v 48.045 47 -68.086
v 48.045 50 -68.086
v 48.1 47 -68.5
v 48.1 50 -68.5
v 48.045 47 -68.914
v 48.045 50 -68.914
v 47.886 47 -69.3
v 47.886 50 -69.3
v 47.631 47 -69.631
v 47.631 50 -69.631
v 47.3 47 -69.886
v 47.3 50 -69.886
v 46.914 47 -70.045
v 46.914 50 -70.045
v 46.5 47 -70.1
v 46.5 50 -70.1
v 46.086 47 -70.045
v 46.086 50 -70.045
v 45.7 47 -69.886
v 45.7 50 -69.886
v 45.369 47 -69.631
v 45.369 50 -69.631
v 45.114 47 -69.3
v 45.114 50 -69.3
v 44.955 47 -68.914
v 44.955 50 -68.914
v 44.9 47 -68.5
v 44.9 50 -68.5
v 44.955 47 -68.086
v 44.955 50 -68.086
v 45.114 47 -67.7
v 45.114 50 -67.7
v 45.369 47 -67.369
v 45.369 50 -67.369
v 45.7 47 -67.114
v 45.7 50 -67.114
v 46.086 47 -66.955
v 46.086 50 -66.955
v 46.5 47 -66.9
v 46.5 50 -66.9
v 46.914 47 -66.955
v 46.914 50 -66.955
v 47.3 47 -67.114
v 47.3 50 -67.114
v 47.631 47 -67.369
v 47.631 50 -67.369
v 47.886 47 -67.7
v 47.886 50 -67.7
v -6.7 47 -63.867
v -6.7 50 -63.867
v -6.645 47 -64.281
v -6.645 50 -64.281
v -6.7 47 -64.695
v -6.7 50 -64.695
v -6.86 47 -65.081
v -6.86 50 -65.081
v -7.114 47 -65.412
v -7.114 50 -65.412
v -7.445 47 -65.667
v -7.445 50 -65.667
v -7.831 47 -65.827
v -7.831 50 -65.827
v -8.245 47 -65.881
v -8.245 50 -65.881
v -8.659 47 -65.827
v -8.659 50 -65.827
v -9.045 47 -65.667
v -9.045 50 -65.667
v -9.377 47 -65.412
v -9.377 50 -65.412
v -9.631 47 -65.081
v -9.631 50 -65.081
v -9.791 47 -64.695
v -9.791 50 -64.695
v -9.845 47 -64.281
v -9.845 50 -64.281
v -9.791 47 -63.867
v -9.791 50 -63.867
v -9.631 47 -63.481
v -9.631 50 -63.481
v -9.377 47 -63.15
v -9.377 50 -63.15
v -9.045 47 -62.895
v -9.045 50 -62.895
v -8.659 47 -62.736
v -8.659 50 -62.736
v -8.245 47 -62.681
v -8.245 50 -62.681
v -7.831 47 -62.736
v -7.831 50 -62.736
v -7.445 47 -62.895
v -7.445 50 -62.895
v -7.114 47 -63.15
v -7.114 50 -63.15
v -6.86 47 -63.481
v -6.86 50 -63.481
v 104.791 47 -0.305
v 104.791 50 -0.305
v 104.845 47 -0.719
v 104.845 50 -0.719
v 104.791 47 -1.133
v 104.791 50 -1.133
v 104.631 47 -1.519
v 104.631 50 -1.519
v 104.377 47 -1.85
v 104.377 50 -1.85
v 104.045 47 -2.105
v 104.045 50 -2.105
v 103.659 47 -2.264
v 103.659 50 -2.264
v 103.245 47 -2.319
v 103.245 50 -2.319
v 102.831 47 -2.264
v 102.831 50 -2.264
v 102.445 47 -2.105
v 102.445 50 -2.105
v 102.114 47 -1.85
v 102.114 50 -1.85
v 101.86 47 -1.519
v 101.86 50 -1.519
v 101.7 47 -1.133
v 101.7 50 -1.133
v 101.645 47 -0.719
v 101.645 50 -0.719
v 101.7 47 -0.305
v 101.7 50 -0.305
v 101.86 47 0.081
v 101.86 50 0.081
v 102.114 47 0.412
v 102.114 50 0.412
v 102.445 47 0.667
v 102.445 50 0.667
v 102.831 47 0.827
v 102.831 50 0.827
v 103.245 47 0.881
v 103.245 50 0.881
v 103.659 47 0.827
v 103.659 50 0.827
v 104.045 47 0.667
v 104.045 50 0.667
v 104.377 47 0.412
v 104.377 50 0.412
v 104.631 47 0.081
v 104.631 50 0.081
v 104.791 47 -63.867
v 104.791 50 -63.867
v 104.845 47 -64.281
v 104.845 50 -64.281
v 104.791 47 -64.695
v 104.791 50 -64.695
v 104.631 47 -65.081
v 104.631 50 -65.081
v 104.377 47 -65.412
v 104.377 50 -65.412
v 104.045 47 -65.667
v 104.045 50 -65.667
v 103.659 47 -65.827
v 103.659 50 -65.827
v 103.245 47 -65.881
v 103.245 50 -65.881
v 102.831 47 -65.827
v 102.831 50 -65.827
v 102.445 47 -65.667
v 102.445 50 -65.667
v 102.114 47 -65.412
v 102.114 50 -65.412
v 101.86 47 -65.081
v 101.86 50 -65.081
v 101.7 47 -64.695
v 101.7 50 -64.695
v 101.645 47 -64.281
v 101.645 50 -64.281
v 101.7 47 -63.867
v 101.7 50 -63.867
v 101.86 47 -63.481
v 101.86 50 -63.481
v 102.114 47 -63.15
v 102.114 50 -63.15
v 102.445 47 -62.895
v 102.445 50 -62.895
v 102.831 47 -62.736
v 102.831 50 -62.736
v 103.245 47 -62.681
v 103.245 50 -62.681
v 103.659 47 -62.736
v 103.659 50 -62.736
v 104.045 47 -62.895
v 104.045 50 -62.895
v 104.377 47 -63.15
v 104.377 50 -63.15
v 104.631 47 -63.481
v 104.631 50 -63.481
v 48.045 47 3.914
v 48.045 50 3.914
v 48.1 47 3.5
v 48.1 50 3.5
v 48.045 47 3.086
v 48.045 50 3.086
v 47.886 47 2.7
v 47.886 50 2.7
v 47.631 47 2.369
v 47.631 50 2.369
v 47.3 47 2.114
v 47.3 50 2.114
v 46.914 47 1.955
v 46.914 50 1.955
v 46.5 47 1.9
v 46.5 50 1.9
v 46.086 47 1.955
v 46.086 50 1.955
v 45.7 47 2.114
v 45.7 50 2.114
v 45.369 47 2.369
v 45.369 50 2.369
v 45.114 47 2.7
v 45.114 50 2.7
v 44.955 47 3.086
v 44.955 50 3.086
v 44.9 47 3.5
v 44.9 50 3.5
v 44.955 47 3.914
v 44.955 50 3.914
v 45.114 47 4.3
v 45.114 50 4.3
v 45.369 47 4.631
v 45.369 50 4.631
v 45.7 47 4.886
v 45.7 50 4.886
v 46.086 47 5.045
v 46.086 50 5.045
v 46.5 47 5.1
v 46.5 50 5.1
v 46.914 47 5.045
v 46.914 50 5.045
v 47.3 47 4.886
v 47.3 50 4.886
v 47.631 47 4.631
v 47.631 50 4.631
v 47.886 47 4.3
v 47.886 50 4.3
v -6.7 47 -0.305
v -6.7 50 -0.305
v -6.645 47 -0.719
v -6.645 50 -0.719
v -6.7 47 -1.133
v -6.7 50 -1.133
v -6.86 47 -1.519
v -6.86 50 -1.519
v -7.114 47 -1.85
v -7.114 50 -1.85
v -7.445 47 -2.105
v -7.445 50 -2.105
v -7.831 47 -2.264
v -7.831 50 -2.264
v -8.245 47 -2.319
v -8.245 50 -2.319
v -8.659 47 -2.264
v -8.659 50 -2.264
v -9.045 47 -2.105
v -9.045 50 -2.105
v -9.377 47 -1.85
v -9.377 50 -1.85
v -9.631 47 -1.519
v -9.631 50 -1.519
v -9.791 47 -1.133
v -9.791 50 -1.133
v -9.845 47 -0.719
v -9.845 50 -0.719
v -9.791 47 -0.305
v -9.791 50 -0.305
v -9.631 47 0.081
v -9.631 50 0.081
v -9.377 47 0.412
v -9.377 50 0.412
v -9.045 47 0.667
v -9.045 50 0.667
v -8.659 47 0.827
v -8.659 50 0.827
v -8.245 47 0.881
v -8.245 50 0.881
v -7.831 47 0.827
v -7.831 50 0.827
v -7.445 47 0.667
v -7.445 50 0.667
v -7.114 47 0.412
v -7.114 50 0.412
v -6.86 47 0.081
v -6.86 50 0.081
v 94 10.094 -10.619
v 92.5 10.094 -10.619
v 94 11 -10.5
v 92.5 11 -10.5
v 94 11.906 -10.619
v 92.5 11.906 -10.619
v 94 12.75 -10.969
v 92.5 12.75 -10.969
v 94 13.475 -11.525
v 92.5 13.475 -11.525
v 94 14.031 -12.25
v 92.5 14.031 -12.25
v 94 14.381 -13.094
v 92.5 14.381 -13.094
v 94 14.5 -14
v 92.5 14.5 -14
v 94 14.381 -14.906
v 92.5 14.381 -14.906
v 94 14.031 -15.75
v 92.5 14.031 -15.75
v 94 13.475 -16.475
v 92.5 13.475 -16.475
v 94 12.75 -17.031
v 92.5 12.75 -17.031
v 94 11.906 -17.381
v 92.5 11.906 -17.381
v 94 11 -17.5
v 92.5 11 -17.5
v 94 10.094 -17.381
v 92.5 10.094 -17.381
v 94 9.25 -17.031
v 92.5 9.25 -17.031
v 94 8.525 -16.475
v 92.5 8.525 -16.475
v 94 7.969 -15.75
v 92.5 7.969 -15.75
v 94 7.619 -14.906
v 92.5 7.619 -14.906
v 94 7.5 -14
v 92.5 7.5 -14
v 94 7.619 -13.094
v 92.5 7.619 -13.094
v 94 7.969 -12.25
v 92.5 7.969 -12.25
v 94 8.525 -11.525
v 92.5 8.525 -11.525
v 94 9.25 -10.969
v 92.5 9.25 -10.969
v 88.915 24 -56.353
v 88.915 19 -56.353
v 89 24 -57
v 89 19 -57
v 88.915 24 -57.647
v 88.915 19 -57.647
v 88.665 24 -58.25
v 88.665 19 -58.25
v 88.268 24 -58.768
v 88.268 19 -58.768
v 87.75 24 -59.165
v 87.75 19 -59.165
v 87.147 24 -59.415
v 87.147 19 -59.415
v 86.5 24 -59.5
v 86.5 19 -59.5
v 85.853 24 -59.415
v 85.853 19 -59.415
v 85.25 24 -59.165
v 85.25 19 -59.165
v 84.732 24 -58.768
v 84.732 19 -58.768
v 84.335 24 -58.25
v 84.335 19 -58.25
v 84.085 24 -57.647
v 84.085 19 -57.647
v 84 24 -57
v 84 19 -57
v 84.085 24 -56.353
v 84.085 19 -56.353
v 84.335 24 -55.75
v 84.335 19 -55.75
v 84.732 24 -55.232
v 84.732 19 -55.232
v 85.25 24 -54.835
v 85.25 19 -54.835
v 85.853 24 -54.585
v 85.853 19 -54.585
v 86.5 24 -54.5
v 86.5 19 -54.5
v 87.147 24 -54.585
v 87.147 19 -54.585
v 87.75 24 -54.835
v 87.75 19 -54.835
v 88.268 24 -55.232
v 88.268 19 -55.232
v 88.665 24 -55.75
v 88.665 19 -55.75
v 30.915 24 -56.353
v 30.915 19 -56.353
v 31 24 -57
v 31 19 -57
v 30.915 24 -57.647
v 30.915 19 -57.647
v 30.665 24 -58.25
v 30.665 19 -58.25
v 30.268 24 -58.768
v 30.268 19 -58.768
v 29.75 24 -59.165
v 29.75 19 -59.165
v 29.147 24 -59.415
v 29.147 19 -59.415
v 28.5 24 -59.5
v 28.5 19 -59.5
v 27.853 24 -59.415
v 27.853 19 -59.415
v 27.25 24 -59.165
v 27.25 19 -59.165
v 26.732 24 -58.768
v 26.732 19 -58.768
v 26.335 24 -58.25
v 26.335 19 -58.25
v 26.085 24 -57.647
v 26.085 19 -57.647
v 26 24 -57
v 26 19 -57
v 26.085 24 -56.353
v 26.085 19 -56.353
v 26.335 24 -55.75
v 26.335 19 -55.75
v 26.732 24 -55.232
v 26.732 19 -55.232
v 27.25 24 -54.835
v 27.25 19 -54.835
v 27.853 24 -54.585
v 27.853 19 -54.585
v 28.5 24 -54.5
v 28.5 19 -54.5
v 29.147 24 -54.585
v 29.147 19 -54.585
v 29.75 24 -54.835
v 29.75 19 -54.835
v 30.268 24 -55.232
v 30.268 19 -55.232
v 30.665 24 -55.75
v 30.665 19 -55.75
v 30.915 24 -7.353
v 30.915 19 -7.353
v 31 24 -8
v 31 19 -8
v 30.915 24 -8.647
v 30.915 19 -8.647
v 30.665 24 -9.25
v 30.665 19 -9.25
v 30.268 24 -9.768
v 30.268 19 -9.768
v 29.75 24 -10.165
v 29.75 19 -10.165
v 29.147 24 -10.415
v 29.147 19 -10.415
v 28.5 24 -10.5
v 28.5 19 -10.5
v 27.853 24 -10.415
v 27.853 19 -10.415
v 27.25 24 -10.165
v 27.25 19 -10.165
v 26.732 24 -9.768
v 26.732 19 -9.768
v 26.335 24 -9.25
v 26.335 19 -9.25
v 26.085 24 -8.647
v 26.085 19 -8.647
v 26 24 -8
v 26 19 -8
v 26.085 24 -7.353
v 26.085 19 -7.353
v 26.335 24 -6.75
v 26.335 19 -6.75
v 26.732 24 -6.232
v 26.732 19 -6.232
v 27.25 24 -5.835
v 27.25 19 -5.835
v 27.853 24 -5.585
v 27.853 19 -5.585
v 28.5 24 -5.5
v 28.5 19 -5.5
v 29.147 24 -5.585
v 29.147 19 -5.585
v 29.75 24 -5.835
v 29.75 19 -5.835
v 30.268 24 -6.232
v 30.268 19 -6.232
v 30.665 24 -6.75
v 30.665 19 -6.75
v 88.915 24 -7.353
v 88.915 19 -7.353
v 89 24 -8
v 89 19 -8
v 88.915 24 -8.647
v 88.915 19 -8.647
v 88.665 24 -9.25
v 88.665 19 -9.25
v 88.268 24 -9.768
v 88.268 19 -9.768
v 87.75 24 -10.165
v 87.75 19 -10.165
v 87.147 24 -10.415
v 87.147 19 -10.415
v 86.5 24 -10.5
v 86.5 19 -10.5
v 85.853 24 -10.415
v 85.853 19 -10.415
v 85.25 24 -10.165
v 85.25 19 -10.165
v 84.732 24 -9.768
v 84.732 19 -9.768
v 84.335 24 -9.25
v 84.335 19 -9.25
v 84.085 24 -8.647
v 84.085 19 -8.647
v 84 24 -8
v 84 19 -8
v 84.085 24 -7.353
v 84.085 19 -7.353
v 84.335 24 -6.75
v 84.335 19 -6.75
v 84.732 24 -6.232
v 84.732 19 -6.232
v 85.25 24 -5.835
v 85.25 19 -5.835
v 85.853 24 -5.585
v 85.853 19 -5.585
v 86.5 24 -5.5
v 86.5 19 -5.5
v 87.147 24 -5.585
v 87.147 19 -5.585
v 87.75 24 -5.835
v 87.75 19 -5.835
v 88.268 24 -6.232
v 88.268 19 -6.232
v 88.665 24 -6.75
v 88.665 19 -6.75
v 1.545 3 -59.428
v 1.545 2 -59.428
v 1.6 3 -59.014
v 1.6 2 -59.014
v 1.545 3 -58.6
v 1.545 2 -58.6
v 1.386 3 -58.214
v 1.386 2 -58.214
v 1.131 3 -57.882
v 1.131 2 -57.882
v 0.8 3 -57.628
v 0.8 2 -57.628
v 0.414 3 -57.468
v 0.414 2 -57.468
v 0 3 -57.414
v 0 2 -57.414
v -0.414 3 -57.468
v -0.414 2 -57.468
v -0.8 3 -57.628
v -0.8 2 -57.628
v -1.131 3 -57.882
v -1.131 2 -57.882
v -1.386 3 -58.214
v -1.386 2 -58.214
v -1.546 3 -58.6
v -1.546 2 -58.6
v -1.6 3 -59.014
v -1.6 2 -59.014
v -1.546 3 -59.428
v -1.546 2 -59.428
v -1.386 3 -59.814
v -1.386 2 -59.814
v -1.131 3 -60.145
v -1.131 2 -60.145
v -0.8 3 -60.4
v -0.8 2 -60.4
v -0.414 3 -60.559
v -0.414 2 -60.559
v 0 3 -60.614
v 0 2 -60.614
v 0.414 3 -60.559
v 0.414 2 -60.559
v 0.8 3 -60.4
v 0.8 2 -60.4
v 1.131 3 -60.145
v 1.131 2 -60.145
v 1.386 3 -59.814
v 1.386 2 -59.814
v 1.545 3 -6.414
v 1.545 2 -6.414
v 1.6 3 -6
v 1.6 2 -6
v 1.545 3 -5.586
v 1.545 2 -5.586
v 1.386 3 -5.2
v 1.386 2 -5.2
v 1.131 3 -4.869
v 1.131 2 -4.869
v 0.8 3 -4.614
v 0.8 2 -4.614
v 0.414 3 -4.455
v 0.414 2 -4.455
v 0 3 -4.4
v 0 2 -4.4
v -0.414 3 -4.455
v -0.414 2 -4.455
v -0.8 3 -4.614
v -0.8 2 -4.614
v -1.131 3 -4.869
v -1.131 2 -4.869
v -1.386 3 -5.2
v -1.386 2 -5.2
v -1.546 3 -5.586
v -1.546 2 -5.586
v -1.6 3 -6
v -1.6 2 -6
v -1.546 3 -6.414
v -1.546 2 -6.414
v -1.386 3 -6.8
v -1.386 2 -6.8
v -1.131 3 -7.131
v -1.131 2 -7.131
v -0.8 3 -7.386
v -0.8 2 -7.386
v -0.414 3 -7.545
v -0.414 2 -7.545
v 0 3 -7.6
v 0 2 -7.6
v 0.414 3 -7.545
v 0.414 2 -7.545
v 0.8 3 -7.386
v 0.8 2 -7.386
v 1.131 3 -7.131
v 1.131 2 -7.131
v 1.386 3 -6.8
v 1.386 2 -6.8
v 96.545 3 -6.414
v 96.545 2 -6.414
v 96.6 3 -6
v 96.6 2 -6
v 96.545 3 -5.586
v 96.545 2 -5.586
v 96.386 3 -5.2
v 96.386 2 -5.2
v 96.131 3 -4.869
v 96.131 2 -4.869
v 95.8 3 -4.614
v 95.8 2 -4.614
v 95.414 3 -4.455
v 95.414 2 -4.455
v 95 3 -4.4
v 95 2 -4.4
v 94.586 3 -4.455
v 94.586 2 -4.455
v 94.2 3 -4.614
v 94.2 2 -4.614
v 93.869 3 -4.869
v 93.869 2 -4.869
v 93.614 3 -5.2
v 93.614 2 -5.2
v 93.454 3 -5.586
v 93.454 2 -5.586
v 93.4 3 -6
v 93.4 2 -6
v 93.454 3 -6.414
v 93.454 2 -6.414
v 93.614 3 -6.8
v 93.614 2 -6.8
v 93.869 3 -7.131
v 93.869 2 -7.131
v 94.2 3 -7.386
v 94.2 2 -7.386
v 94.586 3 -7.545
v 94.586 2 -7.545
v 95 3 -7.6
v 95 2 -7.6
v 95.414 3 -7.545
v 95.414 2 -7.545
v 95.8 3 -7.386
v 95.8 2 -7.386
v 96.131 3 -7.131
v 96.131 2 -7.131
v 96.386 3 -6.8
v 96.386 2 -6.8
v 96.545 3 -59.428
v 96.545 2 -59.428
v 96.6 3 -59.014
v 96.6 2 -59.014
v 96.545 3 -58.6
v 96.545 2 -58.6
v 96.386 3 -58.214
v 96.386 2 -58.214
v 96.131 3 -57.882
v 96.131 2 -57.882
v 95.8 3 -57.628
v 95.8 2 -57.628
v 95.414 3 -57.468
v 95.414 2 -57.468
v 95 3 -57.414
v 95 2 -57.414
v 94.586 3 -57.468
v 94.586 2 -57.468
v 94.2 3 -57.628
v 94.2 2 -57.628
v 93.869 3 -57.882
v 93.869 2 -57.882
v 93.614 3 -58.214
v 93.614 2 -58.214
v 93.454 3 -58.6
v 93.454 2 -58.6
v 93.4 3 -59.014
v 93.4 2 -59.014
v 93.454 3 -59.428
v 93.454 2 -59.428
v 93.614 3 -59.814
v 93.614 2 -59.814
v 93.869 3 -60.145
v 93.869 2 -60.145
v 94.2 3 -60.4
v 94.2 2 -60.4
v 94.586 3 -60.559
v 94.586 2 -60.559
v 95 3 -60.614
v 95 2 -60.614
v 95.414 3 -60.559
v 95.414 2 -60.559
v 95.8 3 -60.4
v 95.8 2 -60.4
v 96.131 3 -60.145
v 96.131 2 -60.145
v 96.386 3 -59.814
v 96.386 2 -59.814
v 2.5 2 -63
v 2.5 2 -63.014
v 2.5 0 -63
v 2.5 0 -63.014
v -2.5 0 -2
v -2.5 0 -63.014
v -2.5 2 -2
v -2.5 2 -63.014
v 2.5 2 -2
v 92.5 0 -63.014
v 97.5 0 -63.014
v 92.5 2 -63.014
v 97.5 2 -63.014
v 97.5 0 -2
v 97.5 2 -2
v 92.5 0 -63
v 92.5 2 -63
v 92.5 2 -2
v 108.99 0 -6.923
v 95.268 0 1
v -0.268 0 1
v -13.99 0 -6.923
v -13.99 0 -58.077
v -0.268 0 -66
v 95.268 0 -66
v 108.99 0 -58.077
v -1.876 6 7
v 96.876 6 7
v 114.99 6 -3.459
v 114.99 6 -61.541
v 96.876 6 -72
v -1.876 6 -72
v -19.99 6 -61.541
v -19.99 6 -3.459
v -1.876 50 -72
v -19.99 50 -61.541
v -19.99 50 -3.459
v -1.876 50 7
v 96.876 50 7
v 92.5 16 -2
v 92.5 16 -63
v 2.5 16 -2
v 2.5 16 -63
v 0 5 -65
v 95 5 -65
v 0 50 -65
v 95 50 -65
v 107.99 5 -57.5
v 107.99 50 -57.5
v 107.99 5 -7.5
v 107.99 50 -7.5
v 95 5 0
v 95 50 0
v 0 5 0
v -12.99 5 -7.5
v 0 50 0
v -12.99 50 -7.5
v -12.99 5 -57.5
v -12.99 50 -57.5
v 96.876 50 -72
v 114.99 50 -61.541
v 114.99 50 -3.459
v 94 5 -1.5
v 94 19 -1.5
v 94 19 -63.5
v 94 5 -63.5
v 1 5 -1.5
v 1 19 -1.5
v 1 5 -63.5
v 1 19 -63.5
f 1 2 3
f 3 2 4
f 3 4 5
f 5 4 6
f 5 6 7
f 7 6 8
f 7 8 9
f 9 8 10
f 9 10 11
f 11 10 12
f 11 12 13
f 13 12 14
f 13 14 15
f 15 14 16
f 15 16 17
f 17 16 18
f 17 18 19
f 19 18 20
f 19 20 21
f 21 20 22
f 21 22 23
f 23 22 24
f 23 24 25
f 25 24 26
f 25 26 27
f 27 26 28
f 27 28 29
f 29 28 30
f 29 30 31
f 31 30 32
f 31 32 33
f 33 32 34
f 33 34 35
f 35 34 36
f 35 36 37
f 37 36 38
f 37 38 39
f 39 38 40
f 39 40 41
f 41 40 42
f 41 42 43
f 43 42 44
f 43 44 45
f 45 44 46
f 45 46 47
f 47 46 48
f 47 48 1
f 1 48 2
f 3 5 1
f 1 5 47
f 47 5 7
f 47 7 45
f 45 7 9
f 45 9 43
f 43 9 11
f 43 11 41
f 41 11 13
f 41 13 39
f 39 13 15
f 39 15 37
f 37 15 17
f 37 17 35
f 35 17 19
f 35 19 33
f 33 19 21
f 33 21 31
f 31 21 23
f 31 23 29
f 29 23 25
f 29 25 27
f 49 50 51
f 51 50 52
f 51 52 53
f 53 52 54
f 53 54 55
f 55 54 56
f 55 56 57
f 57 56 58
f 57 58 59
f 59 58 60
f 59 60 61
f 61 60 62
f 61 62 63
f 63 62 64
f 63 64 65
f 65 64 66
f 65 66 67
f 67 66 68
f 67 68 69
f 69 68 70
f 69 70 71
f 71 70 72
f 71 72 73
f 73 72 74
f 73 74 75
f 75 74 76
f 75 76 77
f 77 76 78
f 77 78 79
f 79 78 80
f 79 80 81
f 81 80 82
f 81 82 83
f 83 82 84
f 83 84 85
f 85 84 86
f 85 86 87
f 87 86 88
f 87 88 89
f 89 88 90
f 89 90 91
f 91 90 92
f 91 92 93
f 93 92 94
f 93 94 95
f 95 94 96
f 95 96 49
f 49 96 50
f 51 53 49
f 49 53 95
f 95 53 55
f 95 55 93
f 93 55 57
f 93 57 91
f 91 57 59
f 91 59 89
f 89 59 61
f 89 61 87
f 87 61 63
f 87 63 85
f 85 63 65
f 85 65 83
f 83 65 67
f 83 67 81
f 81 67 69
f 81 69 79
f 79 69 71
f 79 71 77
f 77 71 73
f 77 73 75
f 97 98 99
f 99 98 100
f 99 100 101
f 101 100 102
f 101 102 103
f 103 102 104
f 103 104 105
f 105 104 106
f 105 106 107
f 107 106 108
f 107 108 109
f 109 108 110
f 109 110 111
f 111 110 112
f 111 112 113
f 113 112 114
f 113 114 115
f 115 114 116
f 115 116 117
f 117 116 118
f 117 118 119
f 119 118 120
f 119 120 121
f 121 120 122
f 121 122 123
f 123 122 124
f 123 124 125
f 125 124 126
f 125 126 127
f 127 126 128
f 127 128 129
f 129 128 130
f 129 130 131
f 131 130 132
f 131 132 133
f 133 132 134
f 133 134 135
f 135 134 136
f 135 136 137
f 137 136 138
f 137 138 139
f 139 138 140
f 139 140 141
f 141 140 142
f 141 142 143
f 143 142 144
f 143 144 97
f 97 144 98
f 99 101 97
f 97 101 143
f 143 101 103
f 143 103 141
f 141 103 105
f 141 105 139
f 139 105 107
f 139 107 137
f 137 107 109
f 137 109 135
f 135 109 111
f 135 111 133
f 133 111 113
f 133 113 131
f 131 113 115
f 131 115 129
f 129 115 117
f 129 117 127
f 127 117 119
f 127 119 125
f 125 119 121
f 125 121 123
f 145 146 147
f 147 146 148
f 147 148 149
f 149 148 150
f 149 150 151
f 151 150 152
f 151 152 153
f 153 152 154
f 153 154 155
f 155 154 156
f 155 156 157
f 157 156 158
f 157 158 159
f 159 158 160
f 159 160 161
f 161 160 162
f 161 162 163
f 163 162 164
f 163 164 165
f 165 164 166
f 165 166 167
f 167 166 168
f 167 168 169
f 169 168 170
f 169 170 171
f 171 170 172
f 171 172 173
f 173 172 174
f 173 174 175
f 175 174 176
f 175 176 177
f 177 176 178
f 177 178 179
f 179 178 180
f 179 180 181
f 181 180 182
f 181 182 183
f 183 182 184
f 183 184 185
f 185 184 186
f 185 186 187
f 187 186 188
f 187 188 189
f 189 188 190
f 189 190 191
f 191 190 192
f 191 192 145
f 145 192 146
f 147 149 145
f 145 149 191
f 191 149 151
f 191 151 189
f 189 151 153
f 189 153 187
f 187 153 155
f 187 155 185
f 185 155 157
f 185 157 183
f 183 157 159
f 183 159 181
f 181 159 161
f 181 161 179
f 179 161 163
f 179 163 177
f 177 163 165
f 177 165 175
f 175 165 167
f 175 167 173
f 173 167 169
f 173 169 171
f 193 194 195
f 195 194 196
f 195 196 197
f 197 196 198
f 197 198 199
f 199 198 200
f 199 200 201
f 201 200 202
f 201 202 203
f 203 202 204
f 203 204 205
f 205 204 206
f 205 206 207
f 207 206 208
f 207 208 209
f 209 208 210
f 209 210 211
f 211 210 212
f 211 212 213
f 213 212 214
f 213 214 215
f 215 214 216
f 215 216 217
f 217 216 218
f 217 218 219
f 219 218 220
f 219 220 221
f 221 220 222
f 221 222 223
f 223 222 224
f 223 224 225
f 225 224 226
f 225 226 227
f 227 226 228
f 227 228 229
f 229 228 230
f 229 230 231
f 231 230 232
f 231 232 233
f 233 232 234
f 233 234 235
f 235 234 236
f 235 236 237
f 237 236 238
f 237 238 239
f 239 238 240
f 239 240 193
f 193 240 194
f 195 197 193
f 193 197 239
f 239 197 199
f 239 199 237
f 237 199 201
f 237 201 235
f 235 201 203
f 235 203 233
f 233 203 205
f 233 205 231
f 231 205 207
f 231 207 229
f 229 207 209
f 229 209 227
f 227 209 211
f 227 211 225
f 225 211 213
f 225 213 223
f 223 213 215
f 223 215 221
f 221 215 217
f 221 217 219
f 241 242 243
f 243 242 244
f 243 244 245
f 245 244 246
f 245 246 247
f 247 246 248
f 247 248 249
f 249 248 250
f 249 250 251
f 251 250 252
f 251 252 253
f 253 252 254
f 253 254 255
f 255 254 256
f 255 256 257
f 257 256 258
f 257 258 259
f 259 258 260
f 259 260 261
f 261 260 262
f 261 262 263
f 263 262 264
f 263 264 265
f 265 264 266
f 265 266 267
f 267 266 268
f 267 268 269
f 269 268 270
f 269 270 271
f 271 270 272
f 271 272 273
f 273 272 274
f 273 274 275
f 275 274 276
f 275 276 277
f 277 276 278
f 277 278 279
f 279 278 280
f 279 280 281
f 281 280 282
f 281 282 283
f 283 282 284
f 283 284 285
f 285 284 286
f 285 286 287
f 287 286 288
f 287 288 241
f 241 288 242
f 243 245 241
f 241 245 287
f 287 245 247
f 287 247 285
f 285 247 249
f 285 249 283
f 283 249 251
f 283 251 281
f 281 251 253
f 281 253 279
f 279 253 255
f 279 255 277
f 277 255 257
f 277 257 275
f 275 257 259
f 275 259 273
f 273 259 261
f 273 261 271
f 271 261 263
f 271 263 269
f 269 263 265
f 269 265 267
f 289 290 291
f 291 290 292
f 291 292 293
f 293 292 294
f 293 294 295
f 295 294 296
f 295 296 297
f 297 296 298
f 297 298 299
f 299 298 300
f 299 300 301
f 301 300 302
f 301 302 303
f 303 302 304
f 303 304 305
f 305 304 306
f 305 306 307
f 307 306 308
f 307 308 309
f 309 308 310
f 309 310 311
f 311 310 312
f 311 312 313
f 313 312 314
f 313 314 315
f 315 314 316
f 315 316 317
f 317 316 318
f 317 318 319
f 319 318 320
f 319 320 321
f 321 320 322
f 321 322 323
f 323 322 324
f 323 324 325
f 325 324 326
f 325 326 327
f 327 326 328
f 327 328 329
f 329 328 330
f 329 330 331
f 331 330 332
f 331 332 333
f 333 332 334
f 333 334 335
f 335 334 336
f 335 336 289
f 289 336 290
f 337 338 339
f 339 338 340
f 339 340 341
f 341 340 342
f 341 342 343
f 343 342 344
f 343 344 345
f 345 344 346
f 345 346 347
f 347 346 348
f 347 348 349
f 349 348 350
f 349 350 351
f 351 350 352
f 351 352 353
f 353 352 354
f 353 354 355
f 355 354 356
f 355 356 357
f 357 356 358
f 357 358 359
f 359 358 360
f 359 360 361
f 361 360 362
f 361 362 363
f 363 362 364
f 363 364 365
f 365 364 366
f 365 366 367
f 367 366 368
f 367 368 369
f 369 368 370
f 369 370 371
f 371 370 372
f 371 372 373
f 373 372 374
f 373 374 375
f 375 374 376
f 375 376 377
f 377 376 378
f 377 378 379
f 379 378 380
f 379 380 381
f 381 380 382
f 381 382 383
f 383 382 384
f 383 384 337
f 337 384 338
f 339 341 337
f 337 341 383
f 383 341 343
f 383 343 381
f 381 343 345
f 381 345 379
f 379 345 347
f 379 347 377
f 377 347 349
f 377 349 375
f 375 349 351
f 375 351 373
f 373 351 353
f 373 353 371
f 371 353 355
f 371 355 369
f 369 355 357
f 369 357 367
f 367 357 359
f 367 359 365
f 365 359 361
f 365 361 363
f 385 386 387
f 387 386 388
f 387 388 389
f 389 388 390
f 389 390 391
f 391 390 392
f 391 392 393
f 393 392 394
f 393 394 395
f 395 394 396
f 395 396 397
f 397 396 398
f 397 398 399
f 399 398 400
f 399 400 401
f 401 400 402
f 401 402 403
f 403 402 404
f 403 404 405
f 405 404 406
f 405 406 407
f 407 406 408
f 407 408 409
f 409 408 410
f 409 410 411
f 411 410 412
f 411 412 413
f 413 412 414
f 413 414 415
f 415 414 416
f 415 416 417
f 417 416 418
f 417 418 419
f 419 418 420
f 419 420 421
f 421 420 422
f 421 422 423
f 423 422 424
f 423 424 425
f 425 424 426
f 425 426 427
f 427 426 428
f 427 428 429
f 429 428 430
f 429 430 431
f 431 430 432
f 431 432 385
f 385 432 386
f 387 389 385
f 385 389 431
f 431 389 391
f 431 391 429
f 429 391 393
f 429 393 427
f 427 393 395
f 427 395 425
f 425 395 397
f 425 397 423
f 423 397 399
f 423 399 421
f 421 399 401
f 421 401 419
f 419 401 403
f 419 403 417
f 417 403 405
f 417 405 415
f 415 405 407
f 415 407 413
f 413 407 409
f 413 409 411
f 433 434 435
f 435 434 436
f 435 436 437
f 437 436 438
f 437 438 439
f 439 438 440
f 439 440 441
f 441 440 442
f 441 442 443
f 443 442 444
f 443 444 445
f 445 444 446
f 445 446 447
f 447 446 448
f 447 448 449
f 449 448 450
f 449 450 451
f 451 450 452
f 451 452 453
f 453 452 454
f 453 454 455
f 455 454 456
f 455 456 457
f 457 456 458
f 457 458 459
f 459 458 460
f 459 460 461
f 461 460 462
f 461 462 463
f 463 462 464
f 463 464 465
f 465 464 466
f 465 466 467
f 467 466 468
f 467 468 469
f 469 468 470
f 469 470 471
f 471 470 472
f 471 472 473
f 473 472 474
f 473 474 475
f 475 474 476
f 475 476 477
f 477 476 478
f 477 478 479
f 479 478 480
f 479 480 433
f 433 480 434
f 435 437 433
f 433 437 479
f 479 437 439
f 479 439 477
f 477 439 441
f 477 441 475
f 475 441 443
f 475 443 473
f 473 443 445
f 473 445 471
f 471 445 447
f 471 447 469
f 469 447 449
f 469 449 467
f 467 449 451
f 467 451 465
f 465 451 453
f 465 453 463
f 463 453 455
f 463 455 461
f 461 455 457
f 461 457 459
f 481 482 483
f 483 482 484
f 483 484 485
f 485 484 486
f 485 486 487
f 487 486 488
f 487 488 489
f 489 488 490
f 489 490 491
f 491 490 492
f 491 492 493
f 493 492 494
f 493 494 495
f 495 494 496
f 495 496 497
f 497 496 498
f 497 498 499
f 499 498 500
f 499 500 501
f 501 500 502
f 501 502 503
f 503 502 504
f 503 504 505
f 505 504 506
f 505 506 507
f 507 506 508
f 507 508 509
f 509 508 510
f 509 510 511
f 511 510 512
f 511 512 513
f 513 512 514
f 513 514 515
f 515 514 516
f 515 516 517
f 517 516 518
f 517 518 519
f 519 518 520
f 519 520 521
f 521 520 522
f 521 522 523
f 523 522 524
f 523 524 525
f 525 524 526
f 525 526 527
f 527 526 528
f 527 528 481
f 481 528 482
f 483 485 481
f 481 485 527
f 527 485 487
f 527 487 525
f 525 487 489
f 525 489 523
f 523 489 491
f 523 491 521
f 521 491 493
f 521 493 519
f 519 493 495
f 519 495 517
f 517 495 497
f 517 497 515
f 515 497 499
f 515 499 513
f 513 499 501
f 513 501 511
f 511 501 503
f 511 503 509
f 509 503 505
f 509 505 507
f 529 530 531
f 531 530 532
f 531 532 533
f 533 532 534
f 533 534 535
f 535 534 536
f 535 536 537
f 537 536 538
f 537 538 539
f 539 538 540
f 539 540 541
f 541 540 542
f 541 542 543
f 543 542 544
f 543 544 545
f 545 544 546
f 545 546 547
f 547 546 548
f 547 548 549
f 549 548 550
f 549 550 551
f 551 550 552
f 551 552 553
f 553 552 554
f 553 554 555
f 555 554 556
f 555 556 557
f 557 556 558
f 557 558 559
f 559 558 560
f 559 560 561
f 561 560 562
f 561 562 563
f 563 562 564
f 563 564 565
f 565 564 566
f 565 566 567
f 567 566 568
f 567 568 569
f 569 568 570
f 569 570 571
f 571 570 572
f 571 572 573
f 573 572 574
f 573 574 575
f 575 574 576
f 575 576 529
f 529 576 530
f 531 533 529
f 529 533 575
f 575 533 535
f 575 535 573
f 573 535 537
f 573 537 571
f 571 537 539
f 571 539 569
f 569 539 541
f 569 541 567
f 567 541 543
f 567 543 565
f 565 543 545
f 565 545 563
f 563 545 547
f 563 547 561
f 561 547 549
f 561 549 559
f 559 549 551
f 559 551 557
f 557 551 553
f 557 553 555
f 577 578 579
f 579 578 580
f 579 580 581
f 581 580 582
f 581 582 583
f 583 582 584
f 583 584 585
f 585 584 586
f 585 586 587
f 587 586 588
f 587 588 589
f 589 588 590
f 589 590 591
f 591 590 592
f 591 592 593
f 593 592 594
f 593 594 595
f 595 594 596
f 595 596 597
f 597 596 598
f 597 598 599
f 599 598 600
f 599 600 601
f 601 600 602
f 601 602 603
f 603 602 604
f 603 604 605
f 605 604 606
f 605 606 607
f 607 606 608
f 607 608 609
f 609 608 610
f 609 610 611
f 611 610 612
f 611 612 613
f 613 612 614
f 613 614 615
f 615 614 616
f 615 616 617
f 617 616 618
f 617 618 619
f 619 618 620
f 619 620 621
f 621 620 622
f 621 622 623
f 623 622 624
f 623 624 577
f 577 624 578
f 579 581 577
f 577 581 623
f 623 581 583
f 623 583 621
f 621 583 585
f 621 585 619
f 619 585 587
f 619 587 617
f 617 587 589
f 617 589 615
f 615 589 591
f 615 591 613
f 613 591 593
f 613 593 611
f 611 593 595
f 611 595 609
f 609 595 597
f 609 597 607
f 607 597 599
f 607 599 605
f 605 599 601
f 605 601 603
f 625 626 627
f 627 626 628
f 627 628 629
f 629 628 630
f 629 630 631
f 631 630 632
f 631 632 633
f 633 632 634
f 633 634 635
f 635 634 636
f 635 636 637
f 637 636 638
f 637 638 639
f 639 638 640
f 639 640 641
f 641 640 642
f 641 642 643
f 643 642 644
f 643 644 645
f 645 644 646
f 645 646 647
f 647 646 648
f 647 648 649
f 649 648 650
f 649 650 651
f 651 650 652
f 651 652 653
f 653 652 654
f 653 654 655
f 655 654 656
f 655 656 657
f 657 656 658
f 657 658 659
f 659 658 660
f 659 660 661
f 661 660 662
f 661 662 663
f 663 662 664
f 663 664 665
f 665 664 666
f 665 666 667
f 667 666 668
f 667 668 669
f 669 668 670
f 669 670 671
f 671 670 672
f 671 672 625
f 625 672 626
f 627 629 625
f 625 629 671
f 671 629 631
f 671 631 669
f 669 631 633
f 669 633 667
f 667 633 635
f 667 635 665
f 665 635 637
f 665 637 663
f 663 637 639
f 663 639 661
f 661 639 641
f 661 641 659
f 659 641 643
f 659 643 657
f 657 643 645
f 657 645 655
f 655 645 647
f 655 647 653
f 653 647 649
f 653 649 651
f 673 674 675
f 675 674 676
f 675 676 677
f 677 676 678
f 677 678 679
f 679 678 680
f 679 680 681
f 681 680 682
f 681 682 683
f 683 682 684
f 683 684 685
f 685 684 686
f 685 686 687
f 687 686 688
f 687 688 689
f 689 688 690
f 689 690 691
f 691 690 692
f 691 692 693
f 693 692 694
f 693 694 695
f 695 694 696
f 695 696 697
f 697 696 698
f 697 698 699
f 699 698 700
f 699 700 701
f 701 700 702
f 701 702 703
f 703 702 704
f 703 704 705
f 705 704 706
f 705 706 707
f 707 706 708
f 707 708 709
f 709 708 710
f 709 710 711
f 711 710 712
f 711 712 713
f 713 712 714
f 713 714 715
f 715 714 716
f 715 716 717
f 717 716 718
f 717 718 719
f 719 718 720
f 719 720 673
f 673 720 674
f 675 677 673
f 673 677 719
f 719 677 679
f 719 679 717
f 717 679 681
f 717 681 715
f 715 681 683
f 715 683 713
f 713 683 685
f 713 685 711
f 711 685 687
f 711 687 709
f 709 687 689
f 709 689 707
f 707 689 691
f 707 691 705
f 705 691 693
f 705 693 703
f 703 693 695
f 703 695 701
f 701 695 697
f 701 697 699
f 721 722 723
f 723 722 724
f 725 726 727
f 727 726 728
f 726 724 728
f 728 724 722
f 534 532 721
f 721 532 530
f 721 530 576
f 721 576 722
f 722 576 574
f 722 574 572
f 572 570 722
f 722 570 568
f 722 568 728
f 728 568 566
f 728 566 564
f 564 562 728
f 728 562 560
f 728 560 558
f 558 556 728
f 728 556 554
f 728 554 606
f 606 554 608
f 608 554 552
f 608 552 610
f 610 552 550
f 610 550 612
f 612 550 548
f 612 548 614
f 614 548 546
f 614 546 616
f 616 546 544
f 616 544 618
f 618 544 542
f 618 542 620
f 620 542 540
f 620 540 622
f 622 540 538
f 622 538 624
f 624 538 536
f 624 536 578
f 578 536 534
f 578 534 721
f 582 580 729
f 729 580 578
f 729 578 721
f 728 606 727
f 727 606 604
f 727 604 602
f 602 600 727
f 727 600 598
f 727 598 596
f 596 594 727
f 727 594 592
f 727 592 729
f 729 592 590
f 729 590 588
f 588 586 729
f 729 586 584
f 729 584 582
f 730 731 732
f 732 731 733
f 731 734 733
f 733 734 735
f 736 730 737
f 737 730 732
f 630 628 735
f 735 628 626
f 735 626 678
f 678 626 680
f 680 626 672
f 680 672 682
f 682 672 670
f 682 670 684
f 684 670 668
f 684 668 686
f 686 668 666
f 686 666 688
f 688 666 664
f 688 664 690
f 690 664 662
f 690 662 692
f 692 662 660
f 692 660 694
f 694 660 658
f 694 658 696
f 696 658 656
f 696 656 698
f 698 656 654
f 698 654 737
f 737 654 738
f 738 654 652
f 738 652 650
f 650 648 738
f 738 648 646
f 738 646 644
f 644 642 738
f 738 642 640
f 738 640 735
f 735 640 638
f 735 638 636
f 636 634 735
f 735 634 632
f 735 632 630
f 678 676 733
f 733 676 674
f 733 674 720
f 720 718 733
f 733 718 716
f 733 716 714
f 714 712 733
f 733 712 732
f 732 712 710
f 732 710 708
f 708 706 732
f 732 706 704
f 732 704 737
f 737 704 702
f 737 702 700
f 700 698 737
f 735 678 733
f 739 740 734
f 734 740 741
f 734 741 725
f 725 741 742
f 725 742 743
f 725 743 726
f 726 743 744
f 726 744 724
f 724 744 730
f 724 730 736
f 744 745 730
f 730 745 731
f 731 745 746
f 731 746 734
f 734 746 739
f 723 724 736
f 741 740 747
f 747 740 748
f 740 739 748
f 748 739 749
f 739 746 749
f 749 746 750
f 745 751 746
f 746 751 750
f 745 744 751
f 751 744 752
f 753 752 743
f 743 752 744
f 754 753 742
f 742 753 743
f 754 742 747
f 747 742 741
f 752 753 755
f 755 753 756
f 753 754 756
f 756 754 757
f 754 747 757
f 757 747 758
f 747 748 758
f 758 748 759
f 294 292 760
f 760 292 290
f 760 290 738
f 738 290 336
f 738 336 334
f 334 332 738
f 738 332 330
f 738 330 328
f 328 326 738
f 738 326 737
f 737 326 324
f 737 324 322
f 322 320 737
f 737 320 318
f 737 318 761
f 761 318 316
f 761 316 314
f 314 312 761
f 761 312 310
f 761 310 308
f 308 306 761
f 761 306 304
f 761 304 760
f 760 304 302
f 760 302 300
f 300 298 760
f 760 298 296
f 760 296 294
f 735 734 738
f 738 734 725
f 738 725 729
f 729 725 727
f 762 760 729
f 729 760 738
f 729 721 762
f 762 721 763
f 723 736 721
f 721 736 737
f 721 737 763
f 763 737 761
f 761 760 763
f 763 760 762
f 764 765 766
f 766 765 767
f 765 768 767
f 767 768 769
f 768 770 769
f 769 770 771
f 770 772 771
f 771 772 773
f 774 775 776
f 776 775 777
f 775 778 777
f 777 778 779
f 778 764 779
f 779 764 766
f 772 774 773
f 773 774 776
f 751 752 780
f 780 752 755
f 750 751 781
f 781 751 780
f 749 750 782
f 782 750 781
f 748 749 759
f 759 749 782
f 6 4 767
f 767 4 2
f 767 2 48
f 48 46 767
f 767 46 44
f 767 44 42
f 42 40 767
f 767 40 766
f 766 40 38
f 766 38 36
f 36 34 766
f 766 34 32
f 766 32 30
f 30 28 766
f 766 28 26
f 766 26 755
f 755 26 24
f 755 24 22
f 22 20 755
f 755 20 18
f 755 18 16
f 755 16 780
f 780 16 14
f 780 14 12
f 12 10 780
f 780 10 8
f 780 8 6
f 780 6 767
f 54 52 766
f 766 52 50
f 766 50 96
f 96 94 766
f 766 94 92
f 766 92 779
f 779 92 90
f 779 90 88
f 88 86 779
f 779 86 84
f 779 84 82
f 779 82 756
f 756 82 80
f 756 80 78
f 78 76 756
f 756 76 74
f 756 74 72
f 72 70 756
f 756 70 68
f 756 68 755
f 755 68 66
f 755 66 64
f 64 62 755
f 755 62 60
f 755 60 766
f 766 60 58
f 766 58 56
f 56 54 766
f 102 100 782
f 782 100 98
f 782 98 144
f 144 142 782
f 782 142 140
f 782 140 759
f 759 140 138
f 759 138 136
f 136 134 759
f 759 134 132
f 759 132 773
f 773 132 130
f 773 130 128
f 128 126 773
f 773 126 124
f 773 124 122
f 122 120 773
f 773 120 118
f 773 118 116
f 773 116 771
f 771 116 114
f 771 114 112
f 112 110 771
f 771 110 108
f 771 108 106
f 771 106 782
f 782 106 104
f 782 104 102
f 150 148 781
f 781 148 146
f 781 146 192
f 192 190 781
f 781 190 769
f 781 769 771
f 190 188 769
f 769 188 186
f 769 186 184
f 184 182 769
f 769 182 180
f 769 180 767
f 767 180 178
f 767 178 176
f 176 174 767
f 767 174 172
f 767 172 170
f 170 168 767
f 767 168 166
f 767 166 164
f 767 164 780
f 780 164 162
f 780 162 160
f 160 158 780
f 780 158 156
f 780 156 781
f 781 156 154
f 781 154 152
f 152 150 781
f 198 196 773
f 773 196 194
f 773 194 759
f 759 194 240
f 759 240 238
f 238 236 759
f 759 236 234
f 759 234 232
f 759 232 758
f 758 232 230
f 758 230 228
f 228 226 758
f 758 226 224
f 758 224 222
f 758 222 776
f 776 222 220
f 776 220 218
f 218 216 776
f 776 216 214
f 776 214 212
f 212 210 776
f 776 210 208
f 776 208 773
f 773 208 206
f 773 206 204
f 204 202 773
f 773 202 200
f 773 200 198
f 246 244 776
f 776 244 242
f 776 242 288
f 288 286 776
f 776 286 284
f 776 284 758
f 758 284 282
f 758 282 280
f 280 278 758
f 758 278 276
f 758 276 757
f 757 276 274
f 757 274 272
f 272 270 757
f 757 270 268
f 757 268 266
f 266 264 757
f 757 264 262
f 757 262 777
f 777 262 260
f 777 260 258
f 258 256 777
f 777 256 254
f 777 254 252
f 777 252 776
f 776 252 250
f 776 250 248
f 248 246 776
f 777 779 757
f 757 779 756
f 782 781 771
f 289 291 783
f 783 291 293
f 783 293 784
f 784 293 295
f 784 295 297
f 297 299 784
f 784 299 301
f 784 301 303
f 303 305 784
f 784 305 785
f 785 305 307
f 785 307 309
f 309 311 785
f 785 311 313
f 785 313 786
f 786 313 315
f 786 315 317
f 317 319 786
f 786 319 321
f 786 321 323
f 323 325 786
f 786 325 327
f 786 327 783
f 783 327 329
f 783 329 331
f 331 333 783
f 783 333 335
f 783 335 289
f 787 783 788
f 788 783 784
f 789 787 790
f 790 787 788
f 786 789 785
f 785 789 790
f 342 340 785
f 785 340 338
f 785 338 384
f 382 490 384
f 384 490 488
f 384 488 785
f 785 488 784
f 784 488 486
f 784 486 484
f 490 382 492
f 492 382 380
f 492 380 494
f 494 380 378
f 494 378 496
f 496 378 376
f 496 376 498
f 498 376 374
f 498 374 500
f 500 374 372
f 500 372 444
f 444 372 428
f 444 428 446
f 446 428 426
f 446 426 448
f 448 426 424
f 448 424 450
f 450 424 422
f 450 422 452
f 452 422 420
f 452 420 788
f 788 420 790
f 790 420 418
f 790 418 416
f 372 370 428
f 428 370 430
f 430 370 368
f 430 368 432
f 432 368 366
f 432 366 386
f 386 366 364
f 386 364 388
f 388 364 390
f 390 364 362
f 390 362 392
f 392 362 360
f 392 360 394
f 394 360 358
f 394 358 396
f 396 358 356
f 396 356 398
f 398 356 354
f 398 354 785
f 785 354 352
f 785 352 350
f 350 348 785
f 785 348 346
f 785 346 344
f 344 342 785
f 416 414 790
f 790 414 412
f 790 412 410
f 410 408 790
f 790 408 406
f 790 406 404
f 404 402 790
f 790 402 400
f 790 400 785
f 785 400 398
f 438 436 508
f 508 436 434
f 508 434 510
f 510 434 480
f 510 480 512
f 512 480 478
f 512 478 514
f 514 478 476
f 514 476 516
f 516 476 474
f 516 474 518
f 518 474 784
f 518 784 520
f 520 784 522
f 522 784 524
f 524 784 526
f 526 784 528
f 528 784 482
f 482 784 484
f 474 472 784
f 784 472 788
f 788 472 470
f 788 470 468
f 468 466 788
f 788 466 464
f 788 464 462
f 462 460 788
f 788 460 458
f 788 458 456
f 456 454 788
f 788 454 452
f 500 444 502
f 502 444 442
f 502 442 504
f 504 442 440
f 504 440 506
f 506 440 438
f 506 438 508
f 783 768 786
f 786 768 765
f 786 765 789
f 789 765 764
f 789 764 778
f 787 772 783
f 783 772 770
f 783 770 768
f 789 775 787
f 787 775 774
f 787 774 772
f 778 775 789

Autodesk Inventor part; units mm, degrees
ref_plane "YZ Plane" through (0, 0, 0) normal (1, 0, 0) x (0, 1, 0)
ref_plane "XZ Plane" through (0, 0, 0) normal (0, 1, 0) x (-1, 0, 0)
ref_plane "XY Plane" through (0, 0, 0) normal (0, 0, 1) x (1, 0, 0)
sketch "Sketch1" plane through (0, 0, 0) normal (0, 1, 0) x (-1, 0, 0)
  line L0 (0, 0) -> (-95, 0)
  line L1 (-95, 0) -> (-95, -65)
  line L2 (-95, -65) -> (0, -65)
  line L3 (0, -65) -> (0, 0)
  line L4 (0, -65) -> (12.9904, -57.5)
  line L5 (12.9904, -57.5) -> (12.9904, -7.5)
  line L6 (12.9904, -7.5) -> (0, 0)
  line L7 (-95, -65) -> (-107.9904, -57.5)
  line L8 (-107.9904, -57.5) -> (-107.9904, -7.5)
  line L9 (-107.9904, -7.5) -> (-95, 0)
  dimension "d0" = 95
  dimension "d1" = 65
  dimension "d2" = 15
  dimension "d3" = 15
  dimension "d4" = 120
  dimension "d5" = 15
  dimension "d6" = 15
  dimension "d7" = 120
extrude "Extrusion1" add sketch "Sketch1" along normal blind 5
sketch "Sketch2" plane through (0, 5, 0) normal (0, 1, 0) x (1, 0, 0)
  line L0 (1.0001, 63.5) -> (94.0001, 63.5)
  line L1 (94.0001, 63.5) -> (94.0001, 1.5)
  line L2 (94.0001, 1.5) -> (1.0001, 1.5)
  line L3 (1.0001, 1.5) -> (1.0001, 63.5)
  line L4 (0, 0) -> (95, 0) projected
  line L5 (-12.9904, 57.5) -> (-12.9904, 7.5) projected
  dimension "d10" = 93
  dimension "d11" = 62
  dimension "d12" = 1.5
  dimension "d13" = 13.9905
extrude "Extrusion2" add sketch "Sketch2" along normal blind 14
sketch "Sketch4" plane through (0, 5, 0) normal (0, 1, 0) x (1, 0, 0)
  line L0 (-12.9904, 57.5) -> (-12.9904, 7.5) projected
  line L1 (-12.9904, 57.5) -> (-12.9904, 7.5)
  line L2 (-12.9904, 7.5) -> (0, 0)
  line L3 (0, 0) -> (95, 0)
  line L4 (95, 0) -> (107.9904, 7.5) projected
  line L5 (95, 0) -> (107.9904, 7.5)
  line L6 (107.9904, 7.5) -> (107.9904, 57.5)
  line L7 (107.9904, 57.5) -> (95, 65) projected
  line L8 (107.9904, 57.5) -> (95, 65)
  line L9 (95, 65) -> (0, 65) projected
  line L10 (95, 65) -> (0, 65)
  line L11 (0, 65) -> (-12.9904, 57.5)
  line L12 (-19.9904, 61.5415) -> (-19.9904, 3.4585)
  line L13 (114.9904, 61.5415) -> (114.9904, 3.4585)
  line L14 (-1.8756, 72) -> (96.8756, 72)
  line L15 (-19.9904, 61.5415) -> (-1.8756, 72)
  line L16 (96.8756, 72) -> (114.9904, 61.5415)
  line L17 (114.9904, 3.4585) -> (96.8756, -7)
  line L18 (-19.9904, 3.4585) -> (-1.8756, -7)
  line L19 (-1.8756, -7) -> (96.8756, -7)
  line L20 (95, 0) -> (107.9904, 7.5) projected
  line L21 (107.9904, 7.5) -> (107.9904, 57.5) projected
  line L22 (0, 0) -> (95, 0) projected
  dimension "d22" = 7
  dimension "d23" = 7
  dimension "d24" = 7
  dimension "d25" = 7
  dimension "d26" = 7
  dimension "d27" = 7
  dimension "d28" = 7
  dimension "d29" = 7
extrude "Extrusion4" add sketch "Sketch4" along normal blind 45 and the other way blind 5
sketch "Sketch5" plane through (0, 0, 0) normal (0, -1, 0) x (1, 0, 0)
  line L0 (2.4999, -63) -> (92.4999, -63)
  line L1 (92.4999, -63) -> (92.4999, -2)
  line L2 (92.4999, -2) -> (2.4999, -2)
  line L3 (2.4999, -2) -> (2.4999, -63)
  line L4 (0, 0) -> (95, 0) projected
  line L5 (-12.9904, -57.5) -> (-12.9904, -7.5) projected
  line L6 (96.8756, 7) -> (-1.8756, 7) projected
  line L7 (114.9904, -61.5415) -> (114.9904, -3.4585) projected
  dimension "d34" = 61
  dimension "d35" = 90
  dimension "d43" = 9
  dimension "d44" = 22.4905
extrude "Extrusion5" cut sketch "Sketch5" against normal blind 16
chamfer "Chamfer1" distance 6 angle 45 8 edges at (47.5, 0, -72) (105.933, 0, -66.7707) (114.9904, 0, -32.5) (105.933, 0, 1.7707) (47.5, 0, 7) (-10.933, 0, 1.7707) (-19.9904, 0, -32.5) (-10.933, 0, -66.7707)
sketch "Sketch6" plane through (0, 0, 0) normal (0, -1, 0) x (1, 0, 0)
  line L0 (2.4999, -2) -> (-2.5001, -2)
  line L1 (-2.5001, -2) -> (-2.5001, -63.0139)
  line L2 (-2.5001, -63.0139) -> (2.4999, -63.0139)
  line L3 (2.4999, -63.0139) -> (2.4999, -2)
  line L4 (2.4999, -2) -> (92.4999, -2) projected
  line L5 (92.4999, -2) -> (97.4999, -2)
  line L6 (97.4999, -2) -> (97.4999, -63.0139)
  line L7 (97.4999, -63.0139) -> (92.4999, -63.0139)
  line L8 (92.4999, -63.0139) -> (92.4999, -2)
  point P0 (0, 0)
  dimension "d45" = 5
  dimension "d46" = 5
extrude "Extrusion6" cut sketch "Sketch6" against normal blind 2
sketch "Sketch7" plane through (0, 2, 0) normal (0, -1, 0) x (1, 0, 0)
  circle A0 centre (-0.0001, -6) radius 1.6
  circle A1 centre (94.9999, -6) radius 1.6
  circle A2 centre (-0.0001, -59.0139) radius 1.6
  circle A3 centre (94.9999, -59.0139) radius 1.6
  line L0 (94.0001, -63.5) -> (94.0001, -1.5) projected
  line L1 (2.4999, -2) -> (2.4999, -63) projected
  line L2 (97.4999, -2) -> (97.4999, -63.0139) projected
  line L3 (-2.5001, -2) -> (97.4999, -2) projected
  line L4 (-2.5001, -63.0139) -> (-2.5001, -2) projected
  line L5 (2.4999, -63.0139) -> (-2.5001, -63.0139) projected
  line L6 (92.4999, -63) -> (92.4999, -2) projected
  line L7 (97.4999, -63.0139) -> (92.4999, -63.0139) projected
  point P0 (0, 0)
  dimension "d49" = 3.2
  dimension "d50" = 2.5
  dimension "d51" = 2.5
  dimension "d52" = 4
  dimension "d53" = 0
  dimension "d54" = 2.5
  dimension "d55" = 4
  dimension "d56" = 2.5
  dimension "d57" = 4
extrude "Extrusion7" cut sketch "Sketch7" against normal blind 1 contours A0 | A1 L0 | L0 A1 | L0 A3 | A3 L0 | A2
sketch "Sketch8" plane through (0, 19, 0) normal (0, 1, 0) x (1, 0, 0)
  line L0 (5.0001, 60.5) -> (90.0001, 60.5)
  line L1 (90.0001, 60.5) -> (90.0001, 4.5)
  line L2 (90.0001, 4.5) -> (5.0001, 4.5)
  line L3 (5.0001, 4.5) -> (5.0001, 60.5)
  line L4 (96.8756, 72) -> (-1.8756, 72) projected
  line L5 (-19.9904, 61.5415) -> (-19.9904, 3.4585) projected
  circle A0 centre (28.5001, 57) radius 2.5
  circle A1 centre (28.5001, 8) radius 2.5
  circle A2 centre (86.5001, 57) radius 2.5
  circle A3 centre (86.5001, 8) radius 2.5
  point P0 (0, 0)
  dimension "d60" = 85
  dimension "d61" = 56
  dimension "d62" = 11.5
  dimension "d63" = 24.9905
  dimension "d65" = 3.5
  dimension "d66" = 5
  dimension "d68" = 3.5
  dimension "d69" = 3.5
  dimension "d70" = 3.5
  dimension "d71" = 58
  dimension "d72" = 58
  dimension "d75" = 3.5
  dimension "d76" = 3.5
extrude "Extrusion8" add sketch "Sketch8" along normal blind 5 contours A0 | A1 | A2 | A3
sketch "Sketch9" plane through (92.4999, 16, -63) normal (-1, 0, 0) x (0, 0, 1)
  circle A0 centre (49, -5) radius 3.5
  line L0 (61, 0) -> (0, 0) projected
  line L1 (61, -14) -> (61, 0) projected
  point P0 (63, -16)
  dimension "d77" = 7
  dimension "d78" = 5
  dimension "d79" = 12
extrude "Extrusion9" cut sketch "Sketch9" against normal blind 5
sketch "Sketch10" plane through (0, 50, 0) normal (0, 1, 0) x (1, 0, 0)
  line L0 (-12.9904, 7.5) -> (-12.9904, 57.5) projected
  line L1 (-12.9904, 7.5) -> (-16.4904, 1.4378)
  line L2 (-1.8756, -7) -> (-19.9904, 3.4585) projected
  line L3 (0, 0) -> (95, 0) projected
  line L4 (0, 0) -> (-3.486, -6.038)
  line L5 (-12.9904, 57.5) -> (0, 65) projected
  line L6 (-12.9904, 57.5) -> (-16.4904, 63.5622)
  line L7 (-1.8756, 72) -> (-19.9904, 61.5415) projected
  line L8 (0, 65) -> (-3.5, 71.0622)
  line L9 (0, 65) -> (95, 65) projected
  line L10 (95, 65) -> (98.5, 71.0622)
  line L11 (114.9904, 61.5415) -> (96.8756, 72) projected
  line L12 (107.9904, 57.5) -> (95, 65) projected
  line L13 (107.9904, 57.5) -> (111.4904, 63.5622)
  line L14 (95, 0) -> (107.9904, 7.5) projected
  line L15 (107.9904, 7.5) -> (111.4904, 1.4378)
  line L16 (95, 0) -> (98.5, -6.0622)
  line L17 (96.8756, -7) -> (114.9904, 3.4585) projected
  circle A0 centre (103.2452, 0.7189) radius 1.6
  circle A1 centre (103.2452, 64.2811) radius 1.6
  circle A2 centre (-8.2452, 64.2811) radius 1.6
  circle A3 centre (-8.2452, 0.7189) radius 1.6
  circle A4 centre (46.5, -3.5) radius 1.6
  circle A5 centre (46.5, 68.5) radius 1.6
  line L18 (0, 0) -> (-12.9904, 7.5) projected
  line L19 (-12.9904, 7.5) -> (0, 0) projected
  line L20 (0, 0) -> (0, -7)
  line L21 (-1.8756, -7) -> (96.8756, -7) projected
  line L22 (0, 65) -> (0, 72)
  dimension "d82" = 3.2
  dimension "d83" = 7.5
  dimension "d84" = 90
  dimension "d85" = 3.5
  dimension "d86" = 90
  dimension "d87" = 7.5
  dimension "d88" = 3.5
  dimension "d89" = 7.5
  dimension "d90" = 3.5
  dimension "d91" = 7.5
  dimension "d92" = 3.5
  dimension "d93" = 46.5
  dimension "d95" = 46.5
  dimension "d96" = 3.5
  dimension "d97" = 3.5
extrude "Extrusion10" cut sketch "Sketch10" against normal blind 3 contours A0 | A1 | A2 | A3 | A4 | A5
properties part number "Bottomv3"
